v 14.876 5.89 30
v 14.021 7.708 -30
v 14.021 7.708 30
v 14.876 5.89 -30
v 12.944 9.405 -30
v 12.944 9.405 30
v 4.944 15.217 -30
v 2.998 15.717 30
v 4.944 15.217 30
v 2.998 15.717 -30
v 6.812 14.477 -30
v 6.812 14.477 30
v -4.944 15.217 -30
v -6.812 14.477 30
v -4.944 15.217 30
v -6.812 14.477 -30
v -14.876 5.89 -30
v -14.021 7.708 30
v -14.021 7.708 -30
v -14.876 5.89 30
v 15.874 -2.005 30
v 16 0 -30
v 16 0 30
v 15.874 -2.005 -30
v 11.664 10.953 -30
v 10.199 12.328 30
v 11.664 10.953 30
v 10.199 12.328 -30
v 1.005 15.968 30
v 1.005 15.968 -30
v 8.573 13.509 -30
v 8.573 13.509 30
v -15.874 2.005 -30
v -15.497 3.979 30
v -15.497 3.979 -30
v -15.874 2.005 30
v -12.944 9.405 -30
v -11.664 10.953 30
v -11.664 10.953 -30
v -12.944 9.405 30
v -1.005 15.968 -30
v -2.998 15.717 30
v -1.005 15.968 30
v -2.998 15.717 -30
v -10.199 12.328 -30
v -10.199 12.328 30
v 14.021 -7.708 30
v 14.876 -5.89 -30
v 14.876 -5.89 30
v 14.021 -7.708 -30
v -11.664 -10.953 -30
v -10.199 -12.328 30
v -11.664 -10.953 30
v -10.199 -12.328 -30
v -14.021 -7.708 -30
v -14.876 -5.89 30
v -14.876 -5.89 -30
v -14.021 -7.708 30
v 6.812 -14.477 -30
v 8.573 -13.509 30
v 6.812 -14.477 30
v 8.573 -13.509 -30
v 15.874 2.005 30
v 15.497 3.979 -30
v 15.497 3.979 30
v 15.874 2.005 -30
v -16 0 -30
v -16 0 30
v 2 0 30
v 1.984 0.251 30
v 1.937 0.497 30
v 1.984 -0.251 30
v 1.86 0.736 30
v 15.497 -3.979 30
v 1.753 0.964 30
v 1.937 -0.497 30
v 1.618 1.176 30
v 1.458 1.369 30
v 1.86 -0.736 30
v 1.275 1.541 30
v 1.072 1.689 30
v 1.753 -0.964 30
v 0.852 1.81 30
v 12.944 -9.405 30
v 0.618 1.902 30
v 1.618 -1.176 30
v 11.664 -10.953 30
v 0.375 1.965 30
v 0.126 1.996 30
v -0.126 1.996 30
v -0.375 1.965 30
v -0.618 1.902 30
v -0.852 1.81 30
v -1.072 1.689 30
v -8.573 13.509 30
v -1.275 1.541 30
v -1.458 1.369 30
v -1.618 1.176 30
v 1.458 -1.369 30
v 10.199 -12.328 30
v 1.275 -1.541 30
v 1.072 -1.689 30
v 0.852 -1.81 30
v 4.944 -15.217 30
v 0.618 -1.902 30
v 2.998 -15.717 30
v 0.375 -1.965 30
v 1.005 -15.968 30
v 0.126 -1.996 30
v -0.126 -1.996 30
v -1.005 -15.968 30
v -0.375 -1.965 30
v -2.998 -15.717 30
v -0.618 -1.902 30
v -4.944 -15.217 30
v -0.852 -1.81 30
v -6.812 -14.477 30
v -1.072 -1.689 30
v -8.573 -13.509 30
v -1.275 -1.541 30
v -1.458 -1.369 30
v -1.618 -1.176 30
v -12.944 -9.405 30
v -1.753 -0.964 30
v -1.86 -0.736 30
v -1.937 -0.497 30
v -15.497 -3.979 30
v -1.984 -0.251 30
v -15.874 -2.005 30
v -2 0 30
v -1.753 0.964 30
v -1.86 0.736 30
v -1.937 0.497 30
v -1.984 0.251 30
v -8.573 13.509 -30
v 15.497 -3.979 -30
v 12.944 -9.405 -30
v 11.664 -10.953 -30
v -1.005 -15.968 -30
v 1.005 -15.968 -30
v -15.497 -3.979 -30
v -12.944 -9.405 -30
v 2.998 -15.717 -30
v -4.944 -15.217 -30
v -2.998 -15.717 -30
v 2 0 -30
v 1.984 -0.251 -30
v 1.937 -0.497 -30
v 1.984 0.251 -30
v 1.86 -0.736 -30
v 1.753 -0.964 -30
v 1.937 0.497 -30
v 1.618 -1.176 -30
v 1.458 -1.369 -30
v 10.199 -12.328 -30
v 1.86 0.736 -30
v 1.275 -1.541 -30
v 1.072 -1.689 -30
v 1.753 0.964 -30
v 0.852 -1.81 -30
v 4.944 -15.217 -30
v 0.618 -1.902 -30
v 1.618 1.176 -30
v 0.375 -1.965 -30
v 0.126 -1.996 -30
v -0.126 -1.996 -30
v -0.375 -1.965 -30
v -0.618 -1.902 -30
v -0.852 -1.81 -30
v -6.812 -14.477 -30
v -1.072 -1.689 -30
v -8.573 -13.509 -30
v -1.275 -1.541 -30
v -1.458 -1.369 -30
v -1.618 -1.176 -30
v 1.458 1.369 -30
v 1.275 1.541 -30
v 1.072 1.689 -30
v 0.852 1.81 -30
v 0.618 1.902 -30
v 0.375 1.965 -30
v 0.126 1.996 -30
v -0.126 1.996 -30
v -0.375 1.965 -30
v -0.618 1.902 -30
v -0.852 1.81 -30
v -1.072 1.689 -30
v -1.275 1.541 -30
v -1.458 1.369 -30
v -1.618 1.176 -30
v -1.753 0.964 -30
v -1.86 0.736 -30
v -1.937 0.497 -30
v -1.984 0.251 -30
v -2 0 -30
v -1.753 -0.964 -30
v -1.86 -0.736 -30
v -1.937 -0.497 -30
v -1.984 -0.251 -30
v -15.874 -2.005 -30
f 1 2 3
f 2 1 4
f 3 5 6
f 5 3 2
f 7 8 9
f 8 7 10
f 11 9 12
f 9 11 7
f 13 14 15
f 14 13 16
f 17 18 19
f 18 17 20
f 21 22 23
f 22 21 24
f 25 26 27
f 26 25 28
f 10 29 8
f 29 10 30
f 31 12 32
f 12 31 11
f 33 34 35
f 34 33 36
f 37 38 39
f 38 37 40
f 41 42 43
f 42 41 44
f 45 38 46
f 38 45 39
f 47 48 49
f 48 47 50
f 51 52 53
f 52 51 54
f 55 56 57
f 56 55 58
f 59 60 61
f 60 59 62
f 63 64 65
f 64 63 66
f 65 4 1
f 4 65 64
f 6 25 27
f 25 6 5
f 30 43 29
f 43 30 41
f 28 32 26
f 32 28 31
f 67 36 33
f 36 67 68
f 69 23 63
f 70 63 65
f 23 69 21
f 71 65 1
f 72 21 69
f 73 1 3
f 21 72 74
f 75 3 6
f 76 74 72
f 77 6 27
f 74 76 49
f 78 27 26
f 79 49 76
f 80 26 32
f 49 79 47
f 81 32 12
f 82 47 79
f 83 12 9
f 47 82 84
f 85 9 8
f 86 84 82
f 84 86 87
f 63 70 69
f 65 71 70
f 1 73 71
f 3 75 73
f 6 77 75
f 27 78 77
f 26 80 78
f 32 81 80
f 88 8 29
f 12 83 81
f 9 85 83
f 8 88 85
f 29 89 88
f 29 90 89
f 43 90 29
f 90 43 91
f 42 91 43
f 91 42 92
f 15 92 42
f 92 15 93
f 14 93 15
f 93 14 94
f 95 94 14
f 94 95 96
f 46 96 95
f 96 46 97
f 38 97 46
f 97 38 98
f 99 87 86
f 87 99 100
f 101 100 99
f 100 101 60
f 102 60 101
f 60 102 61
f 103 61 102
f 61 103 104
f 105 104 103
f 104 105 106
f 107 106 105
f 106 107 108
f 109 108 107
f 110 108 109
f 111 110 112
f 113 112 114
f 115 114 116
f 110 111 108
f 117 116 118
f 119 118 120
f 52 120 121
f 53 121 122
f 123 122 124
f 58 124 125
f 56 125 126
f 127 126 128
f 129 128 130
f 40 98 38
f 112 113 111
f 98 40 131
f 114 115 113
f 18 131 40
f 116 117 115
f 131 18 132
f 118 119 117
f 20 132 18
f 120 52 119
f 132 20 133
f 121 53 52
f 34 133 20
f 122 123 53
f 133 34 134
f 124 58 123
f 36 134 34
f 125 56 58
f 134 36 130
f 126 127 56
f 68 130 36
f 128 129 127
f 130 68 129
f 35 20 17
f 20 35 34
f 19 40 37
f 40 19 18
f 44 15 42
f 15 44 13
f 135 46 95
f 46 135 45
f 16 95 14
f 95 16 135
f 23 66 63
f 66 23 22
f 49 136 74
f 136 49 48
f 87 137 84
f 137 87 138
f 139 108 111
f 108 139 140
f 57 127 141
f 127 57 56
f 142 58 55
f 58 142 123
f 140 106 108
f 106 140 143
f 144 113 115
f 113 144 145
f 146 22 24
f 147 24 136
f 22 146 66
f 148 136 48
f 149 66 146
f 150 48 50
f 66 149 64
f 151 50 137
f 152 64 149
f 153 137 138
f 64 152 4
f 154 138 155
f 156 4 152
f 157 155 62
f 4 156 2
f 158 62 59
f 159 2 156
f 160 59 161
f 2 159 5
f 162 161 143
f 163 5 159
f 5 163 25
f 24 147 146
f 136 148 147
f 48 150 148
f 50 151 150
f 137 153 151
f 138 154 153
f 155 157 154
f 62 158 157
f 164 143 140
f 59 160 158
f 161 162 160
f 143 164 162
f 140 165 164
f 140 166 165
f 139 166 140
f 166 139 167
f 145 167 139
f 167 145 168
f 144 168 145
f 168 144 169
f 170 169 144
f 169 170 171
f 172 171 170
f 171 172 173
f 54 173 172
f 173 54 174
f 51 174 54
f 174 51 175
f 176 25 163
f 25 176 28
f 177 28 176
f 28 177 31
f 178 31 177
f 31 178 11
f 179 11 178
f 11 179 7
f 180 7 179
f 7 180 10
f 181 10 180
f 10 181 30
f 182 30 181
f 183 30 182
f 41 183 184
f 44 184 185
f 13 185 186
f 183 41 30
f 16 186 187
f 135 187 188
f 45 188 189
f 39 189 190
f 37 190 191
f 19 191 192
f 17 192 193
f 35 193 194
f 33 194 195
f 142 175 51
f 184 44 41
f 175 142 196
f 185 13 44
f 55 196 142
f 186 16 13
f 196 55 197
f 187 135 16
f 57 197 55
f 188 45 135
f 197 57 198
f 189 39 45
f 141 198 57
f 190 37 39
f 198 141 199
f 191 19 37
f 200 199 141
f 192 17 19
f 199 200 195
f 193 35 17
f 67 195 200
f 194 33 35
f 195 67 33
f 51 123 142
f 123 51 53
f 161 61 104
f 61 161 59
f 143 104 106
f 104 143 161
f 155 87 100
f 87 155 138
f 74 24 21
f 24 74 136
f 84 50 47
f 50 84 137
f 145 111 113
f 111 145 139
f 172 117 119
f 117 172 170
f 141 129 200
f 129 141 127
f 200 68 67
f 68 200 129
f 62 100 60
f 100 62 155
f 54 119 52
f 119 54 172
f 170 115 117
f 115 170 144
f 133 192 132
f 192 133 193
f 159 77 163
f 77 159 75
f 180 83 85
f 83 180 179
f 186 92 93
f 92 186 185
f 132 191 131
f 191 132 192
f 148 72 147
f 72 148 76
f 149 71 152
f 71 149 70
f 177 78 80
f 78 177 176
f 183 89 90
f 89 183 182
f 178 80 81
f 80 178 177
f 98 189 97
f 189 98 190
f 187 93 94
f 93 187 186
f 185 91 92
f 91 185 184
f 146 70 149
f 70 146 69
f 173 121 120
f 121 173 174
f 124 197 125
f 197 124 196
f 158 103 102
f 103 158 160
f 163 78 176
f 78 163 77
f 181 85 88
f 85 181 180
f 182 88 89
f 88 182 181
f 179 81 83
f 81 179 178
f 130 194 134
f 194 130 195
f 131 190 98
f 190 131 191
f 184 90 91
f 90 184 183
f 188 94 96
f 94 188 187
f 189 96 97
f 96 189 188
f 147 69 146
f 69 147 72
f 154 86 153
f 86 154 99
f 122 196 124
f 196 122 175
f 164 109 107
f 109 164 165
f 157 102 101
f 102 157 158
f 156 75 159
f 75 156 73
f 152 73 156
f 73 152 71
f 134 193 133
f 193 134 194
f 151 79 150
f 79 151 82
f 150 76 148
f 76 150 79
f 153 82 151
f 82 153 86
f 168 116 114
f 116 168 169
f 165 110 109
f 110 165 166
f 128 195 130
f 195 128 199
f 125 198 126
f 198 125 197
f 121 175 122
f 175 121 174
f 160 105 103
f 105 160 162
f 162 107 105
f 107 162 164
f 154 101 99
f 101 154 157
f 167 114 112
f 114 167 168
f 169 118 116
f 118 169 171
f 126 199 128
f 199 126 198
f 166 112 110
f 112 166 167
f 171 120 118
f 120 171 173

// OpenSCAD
$fn = 50;


difference() {
	union() {
		translate(v = [0, 0, -30.0000000000]) {
			cylinder(h = 60, r = 16.0000000000);
		}
	}
	union() {
		translate(v = [0, 0, -100.0000000000]) {
			cylinder(h = 200, r = 2);
		}
	}
}
